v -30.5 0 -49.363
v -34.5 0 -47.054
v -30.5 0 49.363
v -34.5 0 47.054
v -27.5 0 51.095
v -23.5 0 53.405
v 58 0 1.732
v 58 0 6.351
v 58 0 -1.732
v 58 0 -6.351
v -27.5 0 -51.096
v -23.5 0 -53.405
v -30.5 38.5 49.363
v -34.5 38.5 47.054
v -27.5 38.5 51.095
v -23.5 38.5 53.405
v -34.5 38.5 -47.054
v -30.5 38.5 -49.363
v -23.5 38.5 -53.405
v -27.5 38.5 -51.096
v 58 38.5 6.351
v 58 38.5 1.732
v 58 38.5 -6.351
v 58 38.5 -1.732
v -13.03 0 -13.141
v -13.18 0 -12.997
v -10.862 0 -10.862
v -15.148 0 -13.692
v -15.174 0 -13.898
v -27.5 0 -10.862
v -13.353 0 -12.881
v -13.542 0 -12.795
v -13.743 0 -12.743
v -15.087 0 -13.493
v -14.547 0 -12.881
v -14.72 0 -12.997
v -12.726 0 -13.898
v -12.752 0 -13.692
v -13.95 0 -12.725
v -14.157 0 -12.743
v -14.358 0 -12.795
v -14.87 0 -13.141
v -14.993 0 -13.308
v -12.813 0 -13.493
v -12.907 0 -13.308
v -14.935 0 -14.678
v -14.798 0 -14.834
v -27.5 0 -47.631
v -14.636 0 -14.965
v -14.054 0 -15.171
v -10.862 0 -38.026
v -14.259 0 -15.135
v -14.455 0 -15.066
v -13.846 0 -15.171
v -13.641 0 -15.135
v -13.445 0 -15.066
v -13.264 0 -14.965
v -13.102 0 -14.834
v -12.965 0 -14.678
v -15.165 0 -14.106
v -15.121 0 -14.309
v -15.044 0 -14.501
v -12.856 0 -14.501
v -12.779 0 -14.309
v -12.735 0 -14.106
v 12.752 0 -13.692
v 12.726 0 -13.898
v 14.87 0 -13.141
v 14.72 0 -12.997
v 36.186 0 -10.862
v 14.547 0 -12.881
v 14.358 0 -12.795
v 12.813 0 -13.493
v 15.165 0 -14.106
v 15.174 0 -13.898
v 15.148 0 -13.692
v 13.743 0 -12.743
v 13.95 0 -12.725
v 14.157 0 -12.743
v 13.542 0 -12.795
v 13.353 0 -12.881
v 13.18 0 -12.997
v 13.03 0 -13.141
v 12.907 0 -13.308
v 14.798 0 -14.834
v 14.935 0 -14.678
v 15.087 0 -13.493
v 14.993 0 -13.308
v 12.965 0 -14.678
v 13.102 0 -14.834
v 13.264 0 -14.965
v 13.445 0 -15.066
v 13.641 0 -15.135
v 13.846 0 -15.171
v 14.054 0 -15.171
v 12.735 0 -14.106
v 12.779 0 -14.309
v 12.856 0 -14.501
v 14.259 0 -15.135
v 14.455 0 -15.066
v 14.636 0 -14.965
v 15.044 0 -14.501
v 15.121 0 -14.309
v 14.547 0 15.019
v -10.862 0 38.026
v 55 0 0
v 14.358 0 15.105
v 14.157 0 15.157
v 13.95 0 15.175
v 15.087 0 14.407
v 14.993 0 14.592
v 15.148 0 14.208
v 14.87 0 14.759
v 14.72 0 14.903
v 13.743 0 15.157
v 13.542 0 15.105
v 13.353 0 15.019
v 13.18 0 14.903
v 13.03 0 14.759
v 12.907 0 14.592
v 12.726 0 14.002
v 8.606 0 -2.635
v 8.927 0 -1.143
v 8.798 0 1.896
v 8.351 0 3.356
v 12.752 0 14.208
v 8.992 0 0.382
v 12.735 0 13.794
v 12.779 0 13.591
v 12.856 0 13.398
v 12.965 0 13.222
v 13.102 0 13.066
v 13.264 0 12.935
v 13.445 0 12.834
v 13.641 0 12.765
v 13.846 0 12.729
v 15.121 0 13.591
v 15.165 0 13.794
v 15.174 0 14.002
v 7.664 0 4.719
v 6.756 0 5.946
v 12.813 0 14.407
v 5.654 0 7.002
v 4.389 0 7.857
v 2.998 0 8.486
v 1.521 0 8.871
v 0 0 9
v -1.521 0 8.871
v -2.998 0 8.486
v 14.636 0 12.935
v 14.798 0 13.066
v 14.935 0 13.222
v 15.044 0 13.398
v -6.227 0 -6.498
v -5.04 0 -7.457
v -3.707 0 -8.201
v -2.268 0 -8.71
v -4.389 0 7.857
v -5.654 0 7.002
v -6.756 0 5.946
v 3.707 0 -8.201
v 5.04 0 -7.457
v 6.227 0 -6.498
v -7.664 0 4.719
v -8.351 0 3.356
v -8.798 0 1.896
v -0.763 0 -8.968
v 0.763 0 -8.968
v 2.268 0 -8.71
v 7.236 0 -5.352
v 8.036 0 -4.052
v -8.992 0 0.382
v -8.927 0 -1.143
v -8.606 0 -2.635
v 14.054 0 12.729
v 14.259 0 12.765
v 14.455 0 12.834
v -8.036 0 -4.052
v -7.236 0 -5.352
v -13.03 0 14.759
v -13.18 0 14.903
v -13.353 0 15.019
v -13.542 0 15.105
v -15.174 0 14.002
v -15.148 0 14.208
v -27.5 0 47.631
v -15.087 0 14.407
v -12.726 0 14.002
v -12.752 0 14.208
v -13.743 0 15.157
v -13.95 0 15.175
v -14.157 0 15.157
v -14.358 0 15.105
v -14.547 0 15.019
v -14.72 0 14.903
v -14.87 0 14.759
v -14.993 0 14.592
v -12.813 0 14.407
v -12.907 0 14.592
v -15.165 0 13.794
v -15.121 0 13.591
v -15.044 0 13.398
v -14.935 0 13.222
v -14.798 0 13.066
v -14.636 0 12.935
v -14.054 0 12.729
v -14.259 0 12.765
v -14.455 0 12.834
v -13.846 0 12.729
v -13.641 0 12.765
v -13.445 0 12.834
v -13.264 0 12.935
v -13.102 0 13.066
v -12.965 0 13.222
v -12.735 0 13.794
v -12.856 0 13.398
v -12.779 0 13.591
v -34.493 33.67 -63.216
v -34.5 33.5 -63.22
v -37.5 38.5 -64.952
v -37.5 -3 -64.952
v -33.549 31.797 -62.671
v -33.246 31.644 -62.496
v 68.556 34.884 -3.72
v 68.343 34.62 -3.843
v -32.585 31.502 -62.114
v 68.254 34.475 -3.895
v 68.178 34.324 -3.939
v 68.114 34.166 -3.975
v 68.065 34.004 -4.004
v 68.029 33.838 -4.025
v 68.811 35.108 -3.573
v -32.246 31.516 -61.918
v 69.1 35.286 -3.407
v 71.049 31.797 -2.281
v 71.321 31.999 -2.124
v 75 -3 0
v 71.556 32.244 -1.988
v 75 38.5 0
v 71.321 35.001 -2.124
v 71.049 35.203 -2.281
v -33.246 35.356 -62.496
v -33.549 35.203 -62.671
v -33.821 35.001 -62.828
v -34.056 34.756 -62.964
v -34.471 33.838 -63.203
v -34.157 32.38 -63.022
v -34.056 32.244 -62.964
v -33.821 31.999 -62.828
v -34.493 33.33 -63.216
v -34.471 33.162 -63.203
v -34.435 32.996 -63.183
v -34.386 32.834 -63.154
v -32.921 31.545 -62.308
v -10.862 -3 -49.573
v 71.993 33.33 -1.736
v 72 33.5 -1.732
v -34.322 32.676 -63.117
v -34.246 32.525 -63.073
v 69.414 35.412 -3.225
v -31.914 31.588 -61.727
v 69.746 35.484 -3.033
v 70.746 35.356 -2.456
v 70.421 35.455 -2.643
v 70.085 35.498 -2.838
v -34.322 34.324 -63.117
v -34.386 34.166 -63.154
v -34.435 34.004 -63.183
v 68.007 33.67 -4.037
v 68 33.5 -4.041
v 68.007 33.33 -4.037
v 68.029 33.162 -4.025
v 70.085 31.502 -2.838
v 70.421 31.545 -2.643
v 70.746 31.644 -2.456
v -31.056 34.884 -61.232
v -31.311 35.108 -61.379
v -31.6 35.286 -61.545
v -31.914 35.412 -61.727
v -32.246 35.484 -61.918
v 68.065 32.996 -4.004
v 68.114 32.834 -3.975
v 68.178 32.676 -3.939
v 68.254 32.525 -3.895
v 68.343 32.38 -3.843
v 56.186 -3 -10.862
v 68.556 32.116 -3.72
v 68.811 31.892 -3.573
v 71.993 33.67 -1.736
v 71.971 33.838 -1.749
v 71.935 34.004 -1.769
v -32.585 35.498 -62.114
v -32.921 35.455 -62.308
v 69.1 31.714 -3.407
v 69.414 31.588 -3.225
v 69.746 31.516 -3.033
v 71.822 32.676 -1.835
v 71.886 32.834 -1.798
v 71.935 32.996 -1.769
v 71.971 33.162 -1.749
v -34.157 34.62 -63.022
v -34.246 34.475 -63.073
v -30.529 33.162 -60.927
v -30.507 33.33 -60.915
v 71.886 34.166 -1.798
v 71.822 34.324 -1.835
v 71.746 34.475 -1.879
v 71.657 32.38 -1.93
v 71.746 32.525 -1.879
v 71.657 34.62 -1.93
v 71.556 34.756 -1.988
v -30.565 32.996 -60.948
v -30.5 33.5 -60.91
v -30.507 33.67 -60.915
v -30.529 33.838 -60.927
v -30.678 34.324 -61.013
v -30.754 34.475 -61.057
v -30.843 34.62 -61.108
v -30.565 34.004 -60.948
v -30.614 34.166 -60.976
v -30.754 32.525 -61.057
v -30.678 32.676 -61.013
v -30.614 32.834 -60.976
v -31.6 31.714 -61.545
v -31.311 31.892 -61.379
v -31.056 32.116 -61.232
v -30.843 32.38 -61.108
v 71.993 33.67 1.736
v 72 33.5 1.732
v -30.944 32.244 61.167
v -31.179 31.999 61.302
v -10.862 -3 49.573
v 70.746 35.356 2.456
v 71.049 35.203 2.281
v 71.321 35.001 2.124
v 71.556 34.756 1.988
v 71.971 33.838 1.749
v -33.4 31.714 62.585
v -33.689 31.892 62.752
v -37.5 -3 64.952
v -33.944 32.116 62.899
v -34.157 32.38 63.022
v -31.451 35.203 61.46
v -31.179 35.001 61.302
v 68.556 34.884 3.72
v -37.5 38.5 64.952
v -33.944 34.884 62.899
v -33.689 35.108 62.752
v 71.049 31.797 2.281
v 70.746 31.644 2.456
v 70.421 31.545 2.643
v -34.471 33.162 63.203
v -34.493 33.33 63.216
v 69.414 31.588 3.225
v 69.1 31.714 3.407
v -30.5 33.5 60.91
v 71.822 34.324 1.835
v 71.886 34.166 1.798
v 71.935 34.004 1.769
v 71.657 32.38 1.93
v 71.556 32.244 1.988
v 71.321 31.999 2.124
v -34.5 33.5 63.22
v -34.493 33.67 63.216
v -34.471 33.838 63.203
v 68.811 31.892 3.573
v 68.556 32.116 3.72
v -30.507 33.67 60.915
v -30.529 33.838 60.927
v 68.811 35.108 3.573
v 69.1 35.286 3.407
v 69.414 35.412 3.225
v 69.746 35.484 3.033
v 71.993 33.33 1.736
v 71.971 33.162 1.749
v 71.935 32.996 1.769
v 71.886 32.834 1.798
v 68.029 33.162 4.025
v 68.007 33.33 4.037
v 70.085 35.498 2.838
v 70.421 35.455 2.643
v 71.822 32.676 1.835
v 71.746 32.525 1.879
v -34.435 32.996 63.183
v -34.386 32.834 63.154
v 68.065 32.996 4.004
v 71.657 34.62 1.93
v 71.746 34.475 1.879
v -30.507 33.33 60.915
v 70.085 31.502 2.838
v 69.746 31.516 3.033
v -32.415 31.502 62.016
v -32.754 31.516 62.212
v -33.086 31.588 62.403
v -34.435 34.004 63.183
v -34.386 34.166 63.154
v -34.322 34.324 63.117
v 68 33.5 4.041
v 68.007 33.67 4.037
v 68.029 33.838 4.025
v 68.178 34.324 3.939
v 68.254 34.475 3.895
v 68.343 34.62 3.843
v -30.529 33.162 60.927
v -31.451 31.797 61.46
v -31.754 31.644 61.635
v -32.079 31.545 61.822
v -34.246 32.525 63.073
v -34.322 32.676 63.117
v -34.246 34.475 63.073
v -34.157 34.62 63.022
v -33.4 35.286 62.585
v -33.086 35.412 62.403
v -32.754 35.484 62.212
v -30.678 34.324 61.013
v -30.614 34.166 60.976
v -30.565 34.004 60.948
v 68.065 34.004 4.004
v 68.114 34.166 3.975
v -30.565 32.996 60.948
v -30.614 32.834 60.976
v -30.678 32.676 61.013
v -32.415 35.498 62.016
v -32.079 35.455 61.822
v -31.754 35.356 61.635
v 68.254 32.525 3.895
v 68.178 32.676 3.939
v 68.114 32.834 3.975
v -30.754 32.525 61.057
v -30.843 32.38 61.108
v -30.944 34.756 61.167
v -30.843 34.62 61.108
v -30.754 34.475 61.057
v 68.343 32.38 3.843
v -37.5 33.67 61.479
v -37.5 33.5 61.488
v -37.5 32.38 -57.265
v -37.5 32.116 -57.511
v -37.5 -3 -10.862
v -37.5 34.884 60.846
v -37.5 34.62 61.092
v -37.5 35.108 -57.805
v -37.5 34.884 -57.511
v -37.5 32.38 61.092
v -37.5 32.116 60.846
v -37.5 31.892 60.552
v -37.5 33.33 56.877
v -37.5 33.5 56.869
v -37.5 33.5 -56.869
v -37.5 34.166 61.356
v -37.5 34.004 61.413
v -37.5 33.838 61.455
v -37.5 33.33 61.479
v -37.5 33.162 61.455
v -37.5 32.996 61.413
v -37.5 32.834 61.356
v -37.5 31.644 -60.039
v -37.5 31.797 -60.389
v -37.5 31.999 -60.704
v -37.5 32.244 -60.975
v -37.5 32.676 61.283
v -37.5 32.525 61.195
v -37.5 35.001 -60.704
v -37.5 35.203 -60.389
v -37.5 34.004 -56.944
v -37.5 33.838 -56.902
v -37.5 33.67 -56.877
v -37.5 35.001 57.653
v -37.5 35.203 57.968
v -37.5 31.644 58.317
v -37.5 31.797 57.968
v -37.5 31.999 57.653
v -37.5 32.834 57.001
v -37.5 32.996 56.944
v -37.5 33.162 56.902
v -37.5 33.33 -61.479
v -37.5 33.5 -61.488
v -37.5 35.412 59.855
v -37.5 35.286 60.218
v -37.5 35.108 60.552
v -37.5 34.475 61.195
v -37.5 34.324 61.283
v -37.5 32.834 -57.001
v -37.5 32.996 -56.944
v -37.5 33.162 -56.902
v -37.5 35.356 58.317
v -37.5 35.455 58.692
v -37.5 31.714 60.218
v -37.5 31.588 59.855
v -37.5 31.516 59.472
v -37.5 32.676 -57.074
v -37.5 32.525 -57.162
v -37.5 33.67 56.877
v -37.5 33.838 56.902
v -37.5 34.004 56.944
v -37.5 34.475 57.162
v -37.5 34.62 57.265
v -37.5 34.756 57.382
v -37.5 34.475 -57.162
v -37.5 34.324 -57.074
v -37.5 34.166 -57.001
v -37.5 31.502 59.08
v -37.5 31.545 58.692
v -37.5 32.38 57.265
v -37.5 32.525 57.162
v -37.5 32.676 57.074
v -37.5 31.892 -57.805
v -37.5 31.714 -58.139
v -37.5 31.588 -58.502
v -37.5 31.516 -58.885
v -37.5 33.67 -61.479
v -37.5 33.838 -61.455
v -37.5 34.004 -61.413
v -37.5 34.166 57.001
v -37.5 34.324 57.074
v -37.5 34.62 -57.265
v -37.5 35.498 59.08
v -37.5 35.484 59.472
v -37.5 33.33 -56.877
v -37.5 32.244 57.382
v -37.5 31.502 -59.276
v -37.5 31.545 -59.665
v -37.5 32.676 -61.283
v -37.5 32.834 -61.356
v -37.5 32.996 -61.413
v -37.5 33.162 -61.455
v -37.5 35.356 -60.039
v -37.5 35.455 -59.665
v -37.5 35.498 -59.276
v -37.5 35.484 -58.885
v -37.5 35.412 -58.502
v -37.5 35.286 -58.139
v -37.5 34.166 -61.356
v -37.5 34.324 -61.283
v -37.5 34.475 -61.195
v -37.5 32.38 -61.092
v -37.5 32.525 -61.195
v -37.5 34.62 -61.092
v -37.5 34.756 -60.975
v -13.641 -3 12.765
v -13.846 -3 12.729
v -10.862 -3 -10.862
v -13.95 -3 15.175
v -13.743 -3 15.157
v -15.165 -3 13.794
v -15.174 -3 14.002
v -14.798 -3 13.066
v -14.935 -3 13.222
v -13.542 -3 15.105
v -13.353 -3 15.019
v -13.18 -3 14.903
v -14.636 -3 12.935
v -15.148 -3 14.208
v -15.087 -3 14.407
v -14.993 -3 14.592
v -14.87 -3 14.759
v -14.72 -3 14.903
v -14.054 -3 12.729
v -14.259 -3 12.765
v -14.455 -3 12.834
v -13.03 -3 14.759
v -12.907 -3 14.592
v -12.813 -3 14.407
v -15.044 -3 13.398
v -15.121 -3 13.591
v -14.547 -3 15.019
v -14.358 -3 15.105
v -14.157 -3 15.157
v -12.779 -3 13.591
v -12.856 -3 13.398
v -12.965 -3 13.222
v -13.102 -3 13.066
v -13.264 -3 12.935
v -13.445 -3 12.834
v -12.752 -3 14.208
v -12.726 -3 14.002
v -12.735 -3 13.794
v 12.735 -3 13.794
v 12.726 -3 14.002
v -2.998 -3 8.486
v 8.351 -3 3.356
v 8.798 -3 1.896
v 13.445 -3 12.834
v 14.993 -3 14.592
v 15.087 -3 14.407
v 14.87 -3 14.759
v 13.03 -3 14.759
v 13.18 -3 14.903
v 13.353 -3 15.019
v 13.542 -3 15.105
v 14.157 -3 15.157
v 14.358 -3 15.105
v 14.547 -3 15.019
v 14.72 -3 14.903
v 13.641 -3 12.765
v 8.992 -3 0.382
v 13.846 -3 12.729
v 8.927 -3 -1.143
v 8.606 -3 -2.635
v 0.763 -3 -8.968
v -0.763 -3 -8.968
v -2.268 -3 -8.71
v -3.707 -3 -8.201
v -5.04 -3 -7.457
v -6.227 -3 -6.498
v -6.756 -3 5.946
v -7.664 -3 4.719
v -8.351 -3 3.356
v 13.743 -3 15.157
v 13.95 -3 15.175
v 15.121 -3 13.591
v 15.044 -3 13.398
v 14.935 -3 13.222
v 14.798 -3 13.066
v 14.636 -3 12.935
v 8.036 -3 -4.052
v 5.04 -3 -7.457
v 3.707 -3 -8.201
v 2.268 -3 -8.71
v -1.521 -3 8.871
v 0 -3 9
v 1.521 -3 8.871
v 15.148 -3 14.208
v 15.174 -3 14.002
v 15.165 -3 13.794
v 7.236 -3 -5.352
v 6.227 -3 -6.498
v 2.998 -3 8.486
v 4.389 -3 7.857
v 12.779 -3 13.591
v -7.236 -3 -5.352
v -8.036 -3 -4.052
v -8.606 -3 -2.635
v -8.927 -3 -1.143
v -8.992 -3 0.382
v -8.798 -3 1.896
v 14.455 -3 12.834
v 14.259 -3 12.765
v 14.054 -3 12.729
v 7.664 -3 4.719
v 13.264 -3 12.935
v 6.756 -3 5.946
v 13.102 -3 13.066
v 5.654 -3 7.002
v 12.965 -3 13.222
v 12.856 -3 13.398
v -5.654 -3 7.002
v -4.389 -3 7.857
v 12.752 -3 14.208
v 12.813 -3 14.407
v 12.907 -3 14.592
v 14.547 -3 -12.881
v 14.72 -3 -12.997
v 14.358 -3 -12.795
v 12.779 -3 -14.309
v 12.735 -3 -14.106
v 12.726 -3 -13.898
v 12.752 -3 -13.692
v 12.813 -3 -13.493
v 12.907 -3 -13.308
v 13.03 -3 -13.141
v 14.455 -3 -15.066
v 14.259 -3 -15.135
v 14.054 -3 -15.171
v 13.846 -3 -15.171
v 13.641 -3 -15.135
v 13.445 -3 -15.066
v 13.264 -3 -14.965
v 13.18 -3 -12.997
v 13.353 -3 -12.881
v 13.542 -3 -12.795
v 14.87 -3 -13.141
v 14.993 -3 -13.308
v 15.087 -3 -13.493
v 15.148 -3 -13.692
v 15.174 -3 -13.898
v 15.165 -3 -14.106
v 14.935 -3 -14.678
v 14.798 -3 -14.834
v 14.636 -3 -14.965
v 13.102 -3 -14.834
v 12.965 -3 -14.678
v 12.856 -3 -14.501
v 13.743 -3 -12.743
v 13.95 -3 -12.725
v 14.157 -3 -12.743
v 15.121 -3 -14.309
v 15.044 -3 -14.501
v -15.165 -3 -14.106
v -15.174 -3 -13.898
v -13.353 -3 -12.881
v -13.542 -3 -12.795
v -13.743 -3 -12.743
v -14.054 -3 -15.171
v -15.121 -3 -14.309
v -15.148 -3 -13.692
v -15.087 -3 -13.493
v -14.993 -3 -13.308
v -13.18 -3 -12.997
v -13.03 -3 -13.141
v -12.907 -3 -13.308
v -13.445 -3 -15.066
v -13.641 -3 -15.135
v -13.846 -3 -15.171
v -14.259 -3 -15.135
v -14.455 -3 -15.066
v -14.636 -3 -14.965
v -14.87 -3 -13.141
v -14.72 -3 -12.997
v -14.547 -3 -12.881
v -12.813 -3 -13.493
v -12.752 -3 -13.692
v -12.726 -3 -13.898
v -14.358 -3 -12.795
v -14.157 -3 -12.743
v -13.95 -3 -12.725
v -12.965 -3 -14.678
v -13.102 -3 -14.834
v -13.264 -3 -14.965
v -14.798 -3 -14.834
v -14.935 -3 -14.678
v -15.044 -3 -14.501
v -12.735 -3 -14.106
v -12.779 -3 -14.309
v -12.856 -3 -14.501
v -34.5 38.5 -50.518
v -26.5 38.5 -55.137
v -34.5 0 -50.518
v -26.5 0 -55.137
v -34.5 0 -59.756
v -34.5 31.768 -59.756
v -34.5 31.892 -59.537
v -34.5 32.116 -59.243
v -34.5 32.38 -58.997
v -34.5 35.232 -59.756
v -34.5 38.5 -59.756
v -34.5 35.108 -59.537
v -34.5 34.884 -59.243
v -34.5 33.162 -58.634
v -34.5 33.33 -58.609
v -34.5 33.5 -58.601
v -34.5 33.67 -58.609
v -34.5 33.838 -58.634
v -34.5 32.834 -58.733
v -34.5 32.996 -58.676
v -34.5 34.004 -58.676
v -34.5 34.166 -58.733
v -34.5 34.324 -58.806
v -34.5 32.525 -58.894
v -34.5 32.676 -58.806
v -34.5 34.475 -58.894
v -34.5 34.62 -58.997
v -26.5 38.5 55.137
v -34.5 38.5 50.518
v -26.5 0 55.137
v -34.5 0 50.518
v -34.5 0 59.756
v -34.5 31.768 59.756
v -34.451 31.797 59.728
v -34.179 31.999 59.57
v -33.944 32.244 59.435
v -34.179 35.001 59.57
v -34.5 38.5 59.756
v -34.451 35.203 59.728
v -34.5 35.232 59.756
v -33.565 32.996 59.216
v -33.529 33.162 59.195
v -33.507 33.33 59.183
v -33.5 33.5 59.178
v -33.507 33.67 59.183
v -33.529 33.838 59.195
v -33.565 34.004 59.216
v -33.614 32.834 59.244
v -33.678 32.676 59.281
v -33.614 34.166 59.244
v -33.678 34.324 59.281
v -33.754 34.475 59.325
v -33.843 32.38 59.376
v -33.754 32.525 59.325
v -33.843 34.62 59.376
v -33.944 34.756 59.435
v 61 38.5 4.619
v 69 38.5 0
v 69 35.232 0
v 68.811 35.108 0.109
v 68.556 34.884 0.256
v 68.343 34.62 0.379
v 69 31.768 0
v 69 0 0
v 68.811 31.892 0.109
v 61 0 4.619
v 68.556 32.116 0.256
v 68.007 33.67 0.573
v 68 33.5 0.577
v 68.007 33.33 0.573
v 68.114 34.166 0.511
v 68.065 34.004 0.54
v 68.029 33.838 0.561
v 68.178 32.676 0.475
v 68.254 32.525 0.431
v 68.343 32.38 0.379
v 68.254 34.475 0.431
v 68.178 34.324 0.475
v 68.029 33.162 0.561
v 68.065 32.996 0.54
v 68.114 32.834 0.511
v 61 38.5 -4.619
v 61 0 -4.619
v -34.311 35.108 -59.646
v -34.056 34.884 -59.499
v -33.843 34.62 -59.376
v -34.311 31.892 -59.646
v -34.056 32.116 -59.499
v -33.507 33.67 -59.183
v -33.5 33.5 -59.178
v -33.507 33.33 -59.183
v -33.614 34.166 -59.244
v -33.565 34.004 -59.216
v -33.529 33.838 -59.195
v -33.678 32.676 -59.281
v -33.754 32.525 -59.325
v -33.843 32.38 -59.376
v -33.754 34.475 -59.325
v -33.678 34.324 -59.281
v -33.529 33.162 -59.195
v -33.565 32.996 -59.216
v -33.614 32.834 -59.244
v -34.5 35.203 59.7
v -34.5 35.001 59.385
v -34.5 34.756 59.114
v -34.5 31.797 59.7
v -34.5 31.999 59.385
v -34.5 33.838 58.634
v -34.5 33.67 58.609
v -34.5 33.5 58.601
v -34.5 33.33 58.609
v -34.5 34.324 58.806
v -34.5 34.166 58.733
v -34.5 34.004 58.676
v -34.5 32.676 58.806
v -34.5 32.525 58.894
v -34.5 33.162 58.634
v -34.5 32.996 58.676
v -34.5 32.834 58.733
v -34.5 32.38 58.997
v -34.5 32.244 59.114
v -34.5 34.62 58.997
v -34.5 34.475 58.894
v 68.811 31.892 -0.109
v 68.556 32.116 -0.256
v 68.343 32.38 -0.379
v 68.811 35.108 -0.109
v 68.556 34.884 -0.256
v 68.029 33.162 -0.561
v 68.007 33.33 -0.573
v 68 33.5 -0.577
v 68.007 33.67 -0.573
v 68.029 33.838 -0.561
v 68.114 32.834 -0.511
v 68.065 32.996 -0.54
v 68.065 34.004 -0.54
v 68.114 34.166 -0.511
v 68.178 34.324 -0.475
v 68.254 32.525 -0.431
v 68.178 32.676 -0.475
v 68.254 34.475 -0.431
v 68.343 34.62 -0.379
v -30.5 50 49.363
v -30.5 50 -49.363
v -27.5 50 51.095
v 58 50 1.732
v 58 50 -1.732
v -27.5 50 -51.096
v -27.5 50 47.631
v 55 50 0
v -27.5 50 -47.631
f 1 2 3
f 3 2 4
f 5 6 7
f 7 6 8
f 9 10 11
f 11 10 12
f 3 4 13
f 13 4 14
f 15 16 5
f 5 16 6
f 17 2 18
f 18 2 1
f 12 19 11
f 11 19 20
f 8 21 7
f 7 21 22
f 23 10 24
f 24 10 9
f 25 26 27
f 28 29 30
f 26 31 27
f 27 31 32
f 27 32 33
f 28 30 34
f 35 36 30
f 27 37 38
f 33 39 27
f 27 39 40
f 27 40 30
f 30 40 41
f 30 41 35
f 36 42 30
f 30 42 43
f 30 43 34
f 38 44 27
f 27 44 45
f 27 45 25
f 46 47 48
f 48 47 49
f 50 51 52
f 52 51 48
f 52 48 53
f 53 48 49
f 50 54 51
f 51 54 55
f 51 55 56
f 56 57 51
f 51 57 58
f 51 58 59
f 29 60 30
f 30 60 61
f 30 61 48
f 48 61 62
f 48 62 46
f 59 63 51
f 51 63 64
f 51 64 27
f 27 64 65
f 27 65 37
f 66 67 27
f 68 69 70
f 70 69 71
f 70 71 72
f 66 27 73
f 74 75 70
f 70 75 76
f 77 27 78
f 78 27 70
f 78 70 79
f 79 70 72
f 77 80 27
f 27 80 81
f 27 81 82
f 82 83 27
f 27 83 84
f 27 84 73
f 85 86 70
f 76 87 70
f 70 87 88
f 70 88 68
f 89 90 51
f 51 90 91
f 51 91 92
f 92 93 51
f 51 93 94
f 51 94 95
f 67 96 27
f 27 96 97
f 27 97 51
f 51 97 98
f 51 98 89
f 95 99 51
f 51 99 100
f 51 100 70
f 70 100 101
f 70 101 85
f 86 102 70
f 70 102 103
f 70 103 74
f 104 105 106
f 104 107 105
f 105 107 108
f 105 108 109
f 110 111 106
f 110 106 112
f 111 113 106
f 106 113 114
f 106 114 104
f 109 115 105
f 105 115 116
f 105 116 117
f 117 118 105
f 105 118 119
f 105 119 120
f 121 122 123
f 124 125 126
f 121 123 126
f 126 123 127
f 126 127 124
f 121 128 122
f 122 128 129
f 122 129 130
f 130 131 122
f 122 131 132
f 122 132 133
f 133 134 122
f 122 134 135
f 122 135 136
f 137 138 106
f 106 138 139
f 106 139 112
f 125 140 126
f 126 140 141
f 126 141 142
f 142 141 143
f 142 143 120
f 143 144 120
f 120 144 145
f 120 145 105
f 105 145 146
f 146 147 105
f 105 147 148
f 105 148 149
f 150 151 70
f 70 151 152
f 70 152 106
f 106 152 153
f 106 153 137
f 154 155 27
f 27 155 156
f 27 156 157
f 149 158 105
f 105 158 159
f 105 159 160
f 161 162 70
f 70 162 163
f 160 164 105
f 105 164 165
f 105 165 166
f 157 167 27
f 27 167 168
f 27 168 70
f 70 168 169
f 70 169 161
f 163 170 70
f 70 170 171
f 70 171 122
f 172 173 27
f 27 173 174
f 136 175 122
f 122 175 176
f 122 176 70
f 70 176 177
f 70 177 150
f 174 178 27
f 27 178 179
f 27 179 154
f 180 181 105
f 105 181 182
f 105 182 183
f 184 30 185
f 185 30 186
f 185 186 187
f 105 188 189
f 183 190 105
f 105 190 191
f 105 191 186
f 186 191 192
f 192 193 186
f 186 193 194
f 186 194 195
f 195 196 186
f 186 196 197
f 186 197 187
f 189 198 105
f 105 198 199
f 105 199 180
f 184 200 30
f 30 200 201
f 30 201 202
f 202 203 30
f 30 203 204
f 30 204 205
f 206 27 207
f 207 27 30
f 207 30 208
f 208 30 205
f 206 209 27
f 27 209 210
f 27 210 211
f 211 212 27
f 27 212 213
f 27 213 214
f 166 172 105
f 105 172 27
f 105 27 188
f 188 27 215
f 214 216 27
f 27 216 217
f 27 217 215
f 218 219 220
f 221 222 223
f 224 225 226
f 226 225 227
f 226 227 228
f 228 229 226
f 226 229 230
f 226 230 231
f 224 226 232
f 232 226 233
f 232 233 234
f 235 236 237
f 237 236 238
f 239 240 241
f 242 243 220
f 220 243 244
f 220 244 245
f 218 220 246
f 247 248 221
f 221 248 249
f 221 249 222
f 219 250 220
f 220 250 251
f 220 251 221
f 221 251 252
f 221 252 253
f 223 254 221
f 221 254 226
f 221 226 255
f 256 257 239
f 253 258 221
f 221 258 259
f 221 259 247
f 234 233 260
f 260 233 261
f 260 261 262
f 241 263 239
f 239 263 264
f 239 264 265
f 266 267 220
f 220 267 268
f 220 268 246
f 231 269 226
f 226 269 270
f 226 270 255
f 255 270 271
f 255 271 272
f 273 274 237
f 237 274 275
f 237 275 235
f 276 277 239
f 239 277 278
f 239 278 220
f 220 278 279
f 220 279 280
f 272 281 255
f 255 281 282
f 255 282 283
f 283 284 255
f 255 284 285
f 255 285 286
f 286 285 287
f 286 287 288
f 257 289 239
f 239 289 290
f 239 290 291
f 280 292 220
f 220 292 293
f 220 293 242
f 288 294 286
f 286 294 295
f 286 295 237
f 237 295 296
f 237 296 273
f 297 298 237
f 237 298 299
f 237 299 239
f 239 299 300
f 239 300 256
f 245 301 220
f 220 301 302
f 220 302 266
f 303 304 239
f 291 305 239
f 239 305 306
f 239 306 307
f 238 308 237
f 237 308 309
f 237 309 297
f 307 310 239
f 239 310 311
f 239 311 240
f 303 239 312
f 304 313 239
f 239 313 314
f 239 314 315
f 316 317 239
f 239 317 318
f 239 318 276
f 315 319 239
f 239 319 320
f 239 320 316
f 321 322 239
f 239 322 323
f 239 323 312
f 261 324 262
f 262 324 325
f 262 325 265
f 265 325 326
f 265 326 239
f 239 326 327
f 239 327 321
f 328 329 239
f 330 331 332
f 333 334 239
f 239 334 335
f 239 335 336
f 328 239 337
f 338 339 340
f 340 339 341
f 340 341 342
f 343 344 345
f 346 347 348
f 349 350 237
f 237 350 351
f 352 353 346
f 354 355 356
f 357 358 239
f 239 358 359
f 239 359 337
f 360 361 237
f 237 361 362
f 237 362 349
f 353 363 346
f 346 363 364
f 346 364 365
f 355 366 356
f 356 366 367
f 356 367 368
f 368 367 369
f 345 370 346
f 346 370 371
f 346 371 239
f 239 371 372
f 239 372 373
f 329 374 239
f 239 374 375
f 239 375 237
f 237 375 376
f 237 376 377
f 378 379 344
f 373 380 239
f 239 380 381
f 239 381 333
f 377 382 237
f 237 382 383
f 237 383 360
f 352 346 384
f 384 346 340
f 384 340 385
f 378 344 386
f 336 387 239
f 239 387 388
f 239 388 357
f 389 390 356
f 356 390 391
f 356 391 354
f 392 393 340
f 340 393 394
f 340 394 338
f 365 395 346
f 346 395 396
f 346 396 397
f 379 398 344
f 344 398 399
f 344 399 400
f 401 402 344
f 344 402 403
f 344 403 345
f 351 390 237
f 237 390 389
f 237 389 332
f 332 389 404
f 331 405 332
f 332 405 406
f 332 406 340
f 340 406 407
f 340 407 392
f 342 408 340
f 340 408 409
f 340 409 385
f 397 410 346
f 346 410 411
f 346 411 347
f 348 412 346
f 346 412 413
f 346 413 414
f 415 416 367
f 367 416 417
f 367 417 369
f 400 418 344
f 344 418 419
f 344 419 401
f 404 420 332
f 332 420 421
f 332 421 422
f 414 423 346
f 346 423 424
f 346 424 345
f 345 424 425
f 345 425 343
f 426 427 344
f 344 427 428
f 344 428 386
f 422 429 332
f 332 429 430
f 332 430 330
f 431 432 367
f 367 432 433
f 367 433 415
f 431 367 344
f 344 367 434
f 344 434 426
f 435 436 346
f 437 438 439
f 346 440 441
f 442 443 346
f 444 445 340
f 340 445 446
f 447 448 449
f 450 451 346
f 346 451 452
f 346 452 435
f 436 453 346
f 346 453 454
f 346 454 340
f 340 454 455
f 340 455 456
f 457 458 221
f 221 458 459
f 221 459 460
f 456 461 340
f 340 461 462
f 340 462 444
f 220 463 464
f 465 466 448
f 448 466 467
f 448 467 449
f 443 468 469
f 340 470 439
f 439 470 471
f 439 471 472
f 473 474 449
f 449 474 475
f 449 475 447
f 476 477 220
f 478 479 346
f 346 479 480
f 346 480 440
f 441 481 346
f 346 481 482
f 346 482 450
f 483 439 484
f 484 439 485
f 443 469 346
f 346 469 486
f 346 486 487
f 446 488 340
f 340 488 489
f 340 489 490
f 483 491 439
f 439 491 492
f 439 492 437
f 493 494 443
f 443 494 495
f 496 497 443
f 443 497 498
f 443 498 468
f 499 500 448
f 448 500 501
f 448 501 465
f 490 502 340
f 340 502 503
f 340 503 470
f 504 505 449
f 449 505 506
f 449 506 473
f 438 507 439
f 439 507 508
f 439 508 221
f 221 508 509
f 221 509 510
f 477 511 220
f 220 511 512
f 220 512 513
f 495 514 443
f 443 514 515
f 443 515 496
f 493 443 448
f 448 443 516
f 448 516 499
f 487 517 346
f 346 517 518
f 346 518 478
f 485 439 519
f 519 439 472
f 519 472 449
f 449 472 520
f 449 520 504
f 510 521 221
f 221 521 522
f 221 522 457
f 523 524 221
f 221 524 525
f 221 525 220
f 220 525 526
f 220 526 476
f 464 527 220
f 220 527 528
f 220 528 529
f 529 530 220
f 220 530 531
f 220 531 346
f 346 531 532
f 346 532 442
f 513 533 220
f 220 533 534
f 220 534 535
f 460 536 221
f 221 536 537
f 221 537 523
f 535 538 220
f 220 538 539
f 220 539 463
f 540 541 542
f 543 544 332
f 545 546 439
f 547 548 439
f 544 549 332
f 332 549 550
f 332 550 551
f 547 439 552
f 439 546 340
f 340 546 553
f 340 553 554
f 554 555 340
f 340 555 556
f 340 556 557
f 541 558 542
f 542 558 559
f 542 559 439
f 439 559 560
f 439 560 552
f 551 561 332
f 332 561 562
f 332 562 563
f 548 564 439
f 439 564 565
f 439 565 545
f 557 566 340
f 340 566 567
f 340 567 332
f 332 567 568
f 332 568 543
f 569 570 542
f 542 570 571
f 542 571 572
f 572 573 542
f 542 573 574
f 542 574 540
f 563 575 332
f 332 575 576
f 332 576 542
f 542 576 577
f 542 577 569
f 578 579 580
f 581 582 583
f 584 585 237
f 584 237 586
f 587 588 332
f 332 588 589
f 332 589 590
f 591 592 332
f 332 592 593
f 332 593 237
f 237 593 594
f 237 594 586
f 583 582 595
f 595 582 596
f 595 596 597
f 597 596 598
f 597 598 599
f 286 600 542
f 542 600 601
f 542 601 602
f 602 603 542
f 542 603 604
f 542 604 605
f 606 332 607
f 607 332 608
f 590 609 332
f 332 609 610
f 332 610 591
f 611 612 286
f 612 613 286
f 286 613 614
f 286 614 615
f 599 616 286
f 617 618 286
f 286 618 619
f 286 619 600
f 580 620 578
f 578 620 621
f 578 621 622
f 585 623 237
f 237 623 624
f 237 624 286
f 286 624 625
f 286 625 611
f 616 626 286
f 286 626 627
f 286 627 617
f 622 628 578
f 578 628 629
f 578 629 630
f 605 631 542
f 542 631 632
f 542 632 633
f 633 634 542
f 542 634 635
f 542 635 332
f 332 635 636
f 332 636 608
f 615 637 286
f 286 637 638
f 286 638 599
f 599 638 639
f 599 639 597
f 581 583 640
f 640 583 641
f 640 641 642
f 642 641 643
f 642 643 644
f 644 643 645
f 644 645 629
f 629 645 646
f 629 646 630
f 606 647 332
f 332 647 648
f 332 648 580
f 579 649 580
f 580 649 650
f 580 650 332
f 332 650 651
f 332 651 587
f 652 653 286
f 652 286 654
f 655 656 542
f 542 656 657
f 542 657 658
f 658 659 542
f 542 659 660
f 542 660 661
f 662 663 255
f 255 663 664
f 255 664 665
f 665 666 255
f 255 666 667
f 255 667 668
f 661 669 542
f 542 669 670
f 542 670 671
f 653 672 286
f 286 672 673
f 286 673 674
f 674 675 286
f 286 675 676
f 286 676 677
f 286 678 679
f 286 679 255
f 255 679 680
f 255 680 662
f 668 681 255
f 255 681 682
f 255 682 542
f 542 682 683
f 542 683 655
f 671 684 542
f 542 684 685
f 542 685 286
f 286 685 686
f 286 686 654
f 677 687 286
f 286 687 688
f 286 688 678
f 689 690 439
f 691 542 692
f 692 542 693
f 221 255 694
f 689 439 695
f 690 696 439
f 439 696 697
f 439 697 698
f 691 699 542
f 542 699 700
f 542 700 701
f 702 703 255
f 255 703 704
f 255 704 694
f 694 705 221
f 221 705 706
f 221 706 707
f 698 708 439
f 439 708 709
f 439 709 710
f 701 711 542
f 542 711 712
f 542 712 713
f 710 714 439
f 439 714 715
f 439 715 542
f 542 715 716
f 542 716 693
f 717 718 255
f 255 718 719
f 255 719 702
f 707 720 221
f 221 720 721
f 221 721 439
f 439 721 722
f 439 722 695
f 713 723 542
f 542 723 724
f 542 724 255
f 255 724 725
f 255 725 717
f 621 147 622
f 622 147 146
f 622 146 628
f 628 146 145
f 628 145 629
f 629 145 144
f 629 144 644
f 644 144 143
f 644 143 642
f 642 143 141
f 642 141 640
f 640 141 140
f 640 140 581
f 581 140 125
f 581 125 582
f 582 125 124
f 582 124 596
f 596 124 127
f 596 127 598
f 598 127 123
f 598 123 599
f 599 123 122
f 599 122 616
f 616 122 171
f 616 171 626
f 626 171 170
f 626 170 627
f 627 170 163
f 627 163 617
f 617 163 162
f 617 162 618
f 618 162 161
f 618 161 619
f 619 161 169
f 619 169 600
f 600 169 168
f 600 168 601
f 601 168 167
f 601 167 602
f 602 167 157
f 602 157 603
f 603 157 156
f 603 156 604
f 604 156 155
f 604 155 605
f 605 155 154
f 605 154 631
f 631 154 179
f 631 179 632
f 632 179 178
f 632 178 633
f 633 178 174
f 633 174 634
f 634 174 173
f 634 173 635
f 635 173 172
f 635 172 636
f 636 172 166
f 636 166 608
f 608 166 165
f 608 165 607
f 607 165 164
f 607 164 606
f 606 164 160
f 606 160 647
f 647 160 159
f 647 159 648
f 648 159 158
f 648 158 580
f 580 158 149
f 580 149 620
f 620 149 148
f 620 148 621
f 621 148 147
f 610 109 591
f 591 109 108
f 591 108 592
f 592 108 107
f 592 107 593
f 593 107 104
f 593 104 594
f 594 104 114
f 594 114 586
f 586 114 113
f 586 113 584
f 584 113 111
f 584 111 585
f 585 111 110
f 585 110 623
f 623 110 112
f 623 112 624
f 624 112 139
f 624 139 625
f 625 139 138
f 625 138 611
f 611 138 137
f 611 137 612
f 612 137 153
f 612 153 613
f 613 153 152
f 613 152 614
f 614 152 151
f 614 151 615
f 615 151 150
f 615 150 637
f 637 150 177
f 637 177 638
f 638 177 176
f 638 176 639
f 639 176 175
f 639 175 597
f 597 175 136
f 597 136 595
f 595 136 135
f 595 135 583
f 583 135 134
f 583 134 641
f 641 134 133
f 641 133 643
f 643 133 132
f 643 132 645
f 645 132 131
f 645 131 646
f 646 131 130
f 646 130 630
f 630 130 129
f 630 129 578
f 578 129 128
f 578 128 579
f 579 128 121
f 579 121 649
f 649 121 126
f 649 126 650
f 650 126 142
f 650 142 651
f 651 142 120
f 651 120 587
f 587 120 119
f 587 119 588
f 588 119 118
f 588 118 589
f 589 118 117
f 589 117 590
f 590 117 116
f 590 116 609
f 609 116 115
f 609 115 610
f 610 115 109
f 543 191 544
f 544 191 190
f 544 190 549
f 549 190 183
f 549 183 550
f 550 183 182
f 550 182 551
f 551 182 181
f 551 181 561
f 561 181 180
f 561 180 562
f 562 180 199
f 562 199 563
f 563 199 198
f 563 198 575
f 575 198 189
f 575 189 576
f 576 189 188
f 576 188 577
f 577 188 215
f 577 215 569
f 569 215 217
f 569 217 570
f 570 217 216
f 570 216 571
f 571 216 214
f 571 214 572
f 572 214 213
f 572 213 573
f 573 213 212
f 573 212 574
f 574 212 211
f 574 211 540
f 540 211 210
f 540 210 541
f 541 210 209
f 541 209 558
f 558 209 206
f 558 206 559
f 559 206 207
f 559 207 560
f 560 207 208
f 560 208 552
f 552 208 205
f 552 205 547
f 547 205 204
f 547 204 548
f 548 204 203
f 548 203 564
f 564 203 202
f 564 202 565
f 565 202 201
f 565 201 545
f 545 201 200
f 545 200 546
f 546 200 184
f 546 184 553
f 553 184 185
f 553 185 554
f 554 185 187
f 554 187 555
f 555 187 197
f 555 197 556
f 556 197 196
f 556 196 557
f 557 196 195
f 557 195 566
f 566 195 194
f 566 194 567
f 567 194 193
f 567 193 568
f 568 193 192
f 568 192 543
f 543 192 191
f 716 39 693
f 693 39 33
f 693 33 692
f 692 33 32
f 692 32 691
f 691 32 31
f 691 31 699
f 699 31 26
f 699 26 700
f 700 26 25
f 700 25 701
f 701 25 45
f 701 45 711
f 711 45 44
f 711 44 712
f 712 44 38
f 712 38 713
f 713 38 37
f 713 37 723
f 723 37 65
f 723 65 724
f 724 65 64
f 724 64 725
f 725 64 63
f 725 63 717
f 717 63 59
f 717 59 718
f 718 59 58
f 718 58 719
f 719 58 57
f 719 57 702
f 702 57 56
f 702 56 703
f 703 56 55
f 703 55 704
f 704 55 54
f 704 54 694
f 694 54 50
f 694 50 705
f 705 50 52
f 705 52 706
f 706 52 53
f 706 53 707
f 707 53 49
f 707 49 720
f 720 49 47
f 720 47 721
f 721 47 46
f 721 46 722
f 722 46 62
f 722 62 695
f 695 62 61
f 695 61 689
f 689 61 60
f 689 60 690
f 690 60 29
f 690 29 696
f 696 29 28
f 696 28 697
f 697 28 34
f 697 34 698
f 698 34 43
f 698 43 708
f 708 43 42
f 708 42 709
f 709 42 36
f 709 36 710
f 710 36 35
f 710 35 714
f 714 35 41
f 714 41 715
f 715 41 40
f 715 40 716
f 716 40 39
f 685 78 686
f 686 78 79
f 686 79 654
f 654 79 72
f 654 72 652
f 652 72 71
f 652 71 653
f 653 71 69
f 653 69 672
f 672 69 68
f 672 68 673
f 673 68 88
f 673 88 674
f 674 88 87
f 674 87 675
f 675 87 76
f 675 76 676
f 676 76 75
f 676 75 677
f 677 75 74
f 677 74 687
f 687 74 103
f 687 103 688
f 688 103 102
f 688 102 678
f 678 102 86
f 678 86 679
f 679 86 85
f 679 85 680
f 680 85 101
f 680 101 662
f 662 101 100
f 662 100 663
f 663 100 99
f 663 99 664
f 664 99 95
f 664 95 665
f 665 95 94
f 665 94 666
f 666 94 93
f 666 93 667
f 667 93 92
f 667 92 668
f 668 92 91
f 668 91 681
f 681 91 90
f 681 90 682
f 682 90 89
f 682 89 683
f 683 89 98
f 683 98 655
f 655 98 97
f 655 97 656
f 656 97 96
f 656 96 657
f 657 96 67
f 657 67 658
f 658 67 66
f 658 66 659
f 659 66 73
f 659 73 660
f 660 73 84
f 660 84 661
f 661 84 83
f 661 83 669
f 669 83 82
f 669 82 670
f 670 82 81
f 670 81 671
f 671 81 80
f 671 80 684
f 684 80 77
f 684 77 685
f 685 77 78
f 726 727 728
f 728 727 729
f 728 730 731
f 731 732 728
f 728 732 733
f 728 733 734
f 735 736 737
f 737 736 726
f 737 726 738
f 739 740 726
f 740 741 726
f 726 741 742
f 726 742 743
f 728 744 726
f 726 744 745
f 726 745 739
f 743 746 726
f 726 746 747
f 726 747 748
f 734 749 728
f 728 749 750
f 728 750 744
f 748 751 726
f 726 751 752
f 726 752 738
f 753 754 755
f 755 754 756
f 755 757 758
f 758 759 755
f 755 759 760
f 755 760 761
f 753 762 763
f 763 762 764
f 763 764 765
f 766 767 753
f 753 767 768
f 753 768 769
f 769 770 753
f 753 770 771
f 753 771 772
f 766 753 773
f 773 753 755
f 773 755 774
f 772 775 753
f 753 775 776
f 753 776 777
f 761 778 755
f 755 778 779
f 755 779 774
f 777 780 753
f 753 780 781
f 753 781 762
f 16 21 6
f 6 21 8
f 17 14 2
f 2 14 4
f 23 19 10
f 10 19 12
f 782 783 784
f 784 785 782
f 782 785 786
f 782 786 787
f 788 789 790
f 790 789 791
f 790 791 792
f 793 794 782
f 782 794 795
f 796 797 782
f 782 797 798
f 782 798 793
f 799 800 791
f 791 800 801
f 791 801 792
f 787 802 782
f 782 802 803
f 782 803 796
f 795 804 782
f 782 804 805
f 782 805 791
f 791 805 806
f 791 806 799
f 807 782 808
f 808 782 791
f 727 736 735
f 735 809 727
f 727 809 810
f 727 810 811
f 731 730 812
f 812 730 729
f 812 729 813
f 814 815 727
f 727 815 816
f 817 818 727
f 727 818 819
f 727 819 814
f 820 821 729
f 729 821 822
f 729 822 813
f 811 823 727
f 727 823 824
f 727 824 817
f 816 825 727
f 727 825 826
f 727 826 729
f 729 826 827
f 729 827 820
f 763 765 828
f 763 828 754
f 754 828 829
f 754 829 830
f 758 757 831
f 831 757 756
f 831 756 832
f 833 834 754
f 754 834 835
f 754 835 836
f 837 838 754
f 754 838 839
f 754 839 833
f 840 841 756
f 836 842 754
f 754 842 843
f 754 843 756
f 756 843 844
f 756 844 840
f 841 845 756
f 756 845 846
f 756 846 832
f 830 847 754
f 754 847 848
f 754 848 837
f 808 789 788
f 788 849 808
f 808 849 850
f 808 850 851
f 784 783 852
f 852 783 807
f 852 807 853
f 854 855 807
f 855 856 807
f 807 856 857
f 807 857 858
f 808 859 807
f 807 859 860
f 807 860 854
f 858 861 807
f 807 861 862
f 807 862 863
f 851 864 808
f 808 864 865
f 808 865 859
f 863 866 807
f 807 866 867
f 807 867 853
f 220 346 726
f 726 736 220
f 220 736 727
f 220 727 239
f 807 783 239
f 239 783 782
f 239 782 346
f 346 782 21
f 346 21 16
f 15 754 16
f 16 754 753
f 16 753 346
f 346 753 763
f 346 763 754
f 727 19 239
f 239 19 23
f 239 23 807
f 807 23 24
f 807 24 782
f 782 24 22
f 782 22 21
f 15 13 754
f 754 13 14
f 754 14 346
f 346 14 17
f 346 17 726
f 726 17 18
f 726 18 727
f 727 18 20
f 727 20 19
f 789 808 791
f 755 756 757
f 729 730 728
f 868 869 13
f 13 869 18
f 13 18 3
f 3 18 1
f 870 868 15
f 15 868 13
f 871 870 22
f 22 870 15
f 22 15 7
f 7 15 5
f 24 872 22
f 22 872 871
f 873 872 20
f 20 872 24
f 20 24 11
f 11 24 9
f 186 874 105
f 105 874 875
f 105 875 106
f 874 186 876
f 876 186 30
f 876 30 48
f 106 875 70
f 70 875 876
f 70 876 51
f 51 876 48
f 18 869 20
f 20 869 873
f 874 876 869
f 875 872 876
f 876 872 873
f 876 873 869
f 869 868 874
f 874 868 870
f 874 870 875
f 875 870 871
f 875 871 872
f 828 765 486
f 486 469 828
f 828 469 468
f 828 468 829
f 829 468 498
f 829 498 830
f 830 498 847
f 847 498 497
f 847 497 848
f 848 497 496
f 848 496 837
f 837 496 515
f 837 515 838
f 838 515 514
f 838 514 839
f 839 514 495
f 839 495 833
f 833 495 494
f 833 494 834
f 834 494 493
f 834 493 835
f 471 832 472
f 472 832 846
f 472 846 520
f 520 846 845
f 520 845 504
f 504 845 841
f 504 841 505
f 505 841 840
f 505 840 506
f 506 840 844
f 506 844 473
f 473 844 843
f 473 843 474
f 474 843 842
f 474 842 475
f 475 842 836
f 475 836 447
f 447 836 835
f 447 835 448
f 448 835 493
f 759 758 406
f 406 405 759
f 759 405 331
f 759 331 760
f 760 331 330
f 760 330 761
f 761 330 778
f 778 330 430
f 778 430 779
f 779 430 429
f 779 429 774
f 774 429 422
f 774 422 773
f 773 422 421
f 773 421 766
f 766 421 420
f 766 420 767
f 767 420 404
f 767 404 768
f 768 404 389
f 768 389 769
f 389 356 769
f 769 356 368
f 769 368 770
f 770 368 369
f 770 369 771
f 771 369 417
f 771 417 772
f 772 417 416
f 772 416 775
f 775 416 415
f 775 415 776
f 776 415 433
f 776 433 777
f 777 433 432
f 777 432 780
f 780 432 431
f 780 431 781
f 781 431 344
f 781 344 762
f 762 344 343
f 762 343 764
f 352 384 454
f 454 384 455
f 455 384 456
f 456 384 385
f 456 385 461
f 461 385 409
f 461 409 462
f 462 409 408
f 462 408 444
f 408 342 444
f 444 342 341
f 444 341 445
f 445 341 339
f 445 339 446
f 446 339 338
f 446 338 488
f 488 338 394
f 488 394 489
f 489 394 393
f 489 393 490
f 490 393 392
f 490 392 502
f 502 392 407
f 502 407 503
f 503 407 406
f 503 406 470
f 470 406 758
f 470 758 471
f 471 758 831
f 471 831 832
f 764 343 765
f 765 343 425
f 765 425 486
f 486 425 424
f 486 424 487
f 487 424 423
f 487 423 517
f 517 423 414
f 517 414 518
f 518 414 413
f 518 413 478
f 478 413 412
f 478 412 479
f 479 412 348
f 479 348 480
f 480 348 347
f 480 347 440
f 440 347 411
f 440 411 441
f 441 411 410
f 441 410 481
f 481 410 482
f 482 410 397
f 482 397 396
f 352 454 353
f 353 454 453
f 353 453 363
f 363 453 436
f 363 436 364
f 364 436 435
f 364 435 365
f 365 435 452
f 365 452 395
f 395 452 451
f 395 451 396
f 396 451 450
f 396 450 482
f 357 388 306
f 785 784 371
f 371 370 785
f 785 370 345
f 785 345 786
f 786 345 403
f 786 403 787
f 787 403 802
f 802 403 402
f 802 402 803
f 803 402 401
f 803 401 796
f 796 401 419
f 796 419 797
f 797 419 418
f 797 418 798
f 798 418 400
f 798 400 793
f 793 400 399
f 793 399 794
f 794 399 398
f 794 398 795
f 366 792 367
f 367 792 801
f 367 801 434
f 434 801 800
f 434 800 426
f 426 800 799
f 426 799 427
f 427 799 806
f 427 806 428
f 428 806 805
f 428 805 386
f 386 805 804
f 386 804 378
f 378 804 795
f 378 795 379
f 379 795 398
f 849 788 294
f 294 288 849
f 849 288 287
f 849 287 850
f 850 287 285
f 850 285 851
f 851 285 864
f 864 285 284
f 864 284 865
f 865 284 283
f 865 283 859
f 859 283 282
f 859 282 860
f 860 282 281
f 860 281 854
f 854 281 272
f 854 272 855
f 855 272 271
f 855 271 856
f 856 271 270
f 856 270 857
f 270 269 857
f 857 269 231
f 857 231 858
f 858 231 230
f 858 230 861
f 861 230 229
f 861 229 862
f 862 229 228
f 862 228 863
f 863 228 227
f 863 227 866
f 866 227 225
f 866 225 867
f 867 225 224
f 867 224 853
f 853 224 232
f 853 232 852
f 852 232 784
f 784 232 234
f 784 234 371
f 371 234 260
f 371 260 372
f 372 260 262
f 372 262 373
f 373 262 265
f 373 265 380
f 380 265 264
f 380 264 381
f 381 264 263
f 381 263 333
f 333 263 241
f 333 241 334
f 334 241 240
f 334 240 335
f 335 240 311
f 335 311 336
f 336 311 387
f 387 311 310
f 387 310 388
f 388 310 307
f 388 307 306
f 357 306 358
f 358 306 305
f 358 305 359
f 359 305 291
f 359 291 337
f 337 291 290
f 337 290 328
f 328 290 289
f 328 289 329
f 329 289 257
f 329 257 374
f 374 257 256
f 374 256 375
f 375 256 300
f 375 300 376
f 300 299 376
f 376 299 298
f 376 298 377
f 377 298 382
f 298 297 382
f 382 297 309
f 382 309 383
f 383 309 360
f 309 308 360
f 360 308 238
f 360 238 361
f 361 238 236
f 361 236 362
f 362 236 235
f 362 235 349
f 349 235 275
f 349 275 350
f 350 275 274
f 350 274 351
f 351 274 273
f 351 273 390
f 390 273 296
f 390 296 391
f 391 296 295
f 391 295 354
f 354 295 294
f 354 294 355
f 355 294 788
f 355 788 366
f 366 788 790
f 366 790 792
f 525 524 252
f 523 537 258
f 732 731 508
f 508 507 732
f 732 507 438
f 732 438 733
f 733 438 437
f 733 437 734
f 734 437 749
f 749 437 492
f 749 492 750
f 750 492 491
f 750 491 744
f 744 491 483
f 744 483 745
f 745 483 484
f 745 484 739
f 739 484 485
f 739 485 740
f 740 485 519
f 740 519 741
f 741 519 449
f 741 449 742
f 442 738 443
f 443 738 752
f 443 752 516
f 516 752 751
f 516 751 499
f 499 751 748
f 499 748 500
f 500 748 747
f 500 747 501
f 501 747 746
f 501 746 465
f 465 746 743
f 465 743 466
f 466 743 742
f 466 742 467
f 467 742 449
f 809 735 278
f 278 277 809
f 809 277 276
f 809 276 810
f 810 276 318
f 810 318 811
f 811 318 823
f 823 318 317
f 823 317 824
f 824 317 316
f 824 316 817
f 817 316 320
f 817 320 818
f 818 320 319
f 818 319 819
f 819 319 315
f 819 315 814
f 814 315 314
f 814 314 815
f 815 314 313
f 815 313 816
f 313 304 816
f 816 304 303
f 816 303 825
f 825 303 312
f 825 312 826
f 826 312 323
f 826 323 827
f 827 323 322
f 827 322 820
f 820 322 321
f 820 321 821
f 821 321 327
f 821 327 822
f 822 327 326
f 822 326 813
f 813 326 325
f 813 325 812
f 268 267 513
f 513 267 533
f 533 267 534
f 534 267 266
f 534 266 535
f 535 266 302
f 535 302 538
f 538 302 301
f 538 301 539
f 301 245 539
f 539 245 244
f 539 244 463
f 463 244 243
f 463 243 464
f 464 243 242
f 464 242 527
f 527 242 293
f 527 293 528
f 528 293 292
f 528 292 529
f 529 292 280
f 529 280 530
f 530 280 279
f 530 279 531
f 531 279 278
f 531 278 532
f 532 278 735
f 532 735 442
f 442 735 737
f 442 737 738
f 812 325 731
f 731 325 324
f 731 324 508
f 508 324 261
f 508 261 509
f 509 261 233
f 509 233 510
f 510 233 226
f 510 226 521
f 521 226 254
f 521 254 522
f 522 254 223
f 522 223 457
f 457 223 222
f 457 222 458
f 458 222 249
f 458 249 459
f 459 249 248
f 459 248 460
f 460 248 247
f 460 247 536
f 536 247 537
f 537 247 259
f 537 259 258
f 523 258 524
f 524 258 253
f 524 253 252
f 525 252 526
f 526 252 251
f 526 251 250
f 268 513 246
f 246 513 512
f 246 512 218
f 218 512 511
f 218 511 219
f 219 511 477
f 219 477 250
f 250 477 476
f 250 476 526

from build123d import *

# Parameters (mm, degrees)
SKETCH1_R               = 1.225
SKETCH1_R_2             = 9
BOSS_EXTRUDE1_DEPTH     = 3
BOSS_EXTRUDE2_DEPTH     = 38.5
BOSS_EXTRUDE4_DEPTH     = 50
SKETCH2_R               = 2
CUT_EXTRUDE1_DEPTH      = 5
MIRROR2_COPY_1_SKETCH_R = 2
MIRROR2_COPY_1_DEPTH    = 5
MIRROR2_COPY_2_SKETCH_R = 2
MIRROR2_COPY_2_DEPTH    = 5


with BuildPart() as part:
    # Sketch1 → Boss-Extrude1 (new body)
    with BuildSketch(Plane(origin=(0, 0, 0), x_dir=(1, 0, 0), z_dir=(0, 1, 0))):
        Polygon((-37.5, -64.951905284), (75, 0), (-37.5, 64.951905284), align=None)
        with Locations((-13.95, 13.95)):
            Circle(SKETCH1_R, mode=Mode.SUBTRACT)
        Circle(SKETCH1_R_2, mode=Mode.SUBTRACT)
        with Locations((13.95, 13.95)):
            Circle(SKETCH1_R, mode=Mode.SUBTRACT)
        with Locations((-13.95, -13.95)):
            Circle(SKETCH1_R, mode=Mode.SUBTRACT)
        with Locations((13.95, -13.95)):
            Circle(SKETCH1_R, mode=Mode.SUBTRACT)
    extrude(amount=-BOSS_EXTRUDE1_DEPTH)

    # Sketch1<3> → Boss-Extrude2 (add)
    with BuildSketch(Plane(origin=(0, 0, 0), x_dir=(1, 0, 0), z_dir=(0, 1, 0))):
        Polygon((-37.5, -64.951905284), (75, 0), (-37.5, 64.951905284), align=None)
        Polygon((-34.5, 50.518148554), (-34.5, 59.755752861), (-26.5, 55.136950708), align=None, mode=Mode.SUBTRACT)
        Polygon((-34.5, 47.054046939), (-23.5, 53.4048999), (58, 6.350852961), (58, -6.350852961), (-23.5, -53.4048999), (-34.5, -47.054046939), align=None, mode=Mode.SUBTRACT)
        Polygon((-34.5, -59.755752861), (-34.5, -50.518148554), (-26.5, -55.136950708), align=None, mode=Mode.SUBTRACT)
        Polygon((69, 0), (61, -4.618802154), (61, 4.618802154), align=None, mode=Mode.SUBTRACT)
    extrude(amount=BOSS_EXTRUDE2_DEPTH)

    # Sketch1<5> → Boss-Extrude4 (add)
    with BuildSketch(Plane(origin=(0, 0, 0), x_dir=(1, 0, 0), z_dir=(0, 1, 0))):
        Polygon((58, 1.732050808), (-27.5, 51.095498823), (-30.5, 49.363448016), (-30.5, -49.363448016), (-27.5, -51.095498823), (58, -1.732050808), align=None)
        Polygon((-27.5, 47.631397208), (55, 0), (-27.5, -47.631397208), align=None, mode=Mode.SUBTRACT)
    extrude(amount=BOSS_EXTRUDE4_DEPTH)

    # Sketch2 → Cut-Extrude1 (cut, symmetric)
    with BuildSketch(Plane(origin=(-5.024047358, 0, 8.701905284), x_dir=(0.4999999999999999, 0, -0.8660254037844386), z_dir=(0.8660254037844387, 0, 0.49999999999999994))):
        with Locations((-59.951905284, 33.5)):
            Circle(SKETCH2_R)
    cut_extrude1 = extrude(amount=CUT_EXTRUDE1_DEPTH, both=True, mode=Mode.SUBTRACT)

    # Mirror1: Cut-Extrude1 across plane
    add(cut_extrude1.mirror(Plane(origin=(0, 0, 0), x_dir=(0.5000000000000001, 0, 0.8660254037844387), z_dir=(-0.8660254037844388, 0, 0.49999999999999994))), mode=Mode.SUBTRACT)

    # Mirror2 copy 1 sketch → Mirror2 copy 1 (cut, symmetric)
    with BuildSketch(Plane(origin=(10.048094716, 0, 0), x_dir=(-1, 0, 0), z_dir=(0, 0, -1))):
        with Locations((-59.951905284, 33.5)):
            Circle(MIRROR2_COPY_1_SKETCH_R)
    extrude(amount=MIRROR2_COPY_1_DEPTH, both=True, mode=Mode.SUBTRACT)

    # Mirror2 copy 2 sketch → Mirror2 copy 2 (cut, symmetric)
    with BuildSketch(Plane(origin=(-5.024047358, 0, -8.701905284), x_dir=(0.4999999999999999, 0, 0.8660254037844386), z_dir=(0.8660254037844387, 0, -0.49999999999999994))):
        with Locations((-59.951905284, -33.5)):
            Circle(MIRROR2_COPY_2_SKETCH_R)
    extrude(amount=MIRROR2_COPY_2_DEPTH, both=True, mode=Mode.SUBTRACT)


solid = part.part
